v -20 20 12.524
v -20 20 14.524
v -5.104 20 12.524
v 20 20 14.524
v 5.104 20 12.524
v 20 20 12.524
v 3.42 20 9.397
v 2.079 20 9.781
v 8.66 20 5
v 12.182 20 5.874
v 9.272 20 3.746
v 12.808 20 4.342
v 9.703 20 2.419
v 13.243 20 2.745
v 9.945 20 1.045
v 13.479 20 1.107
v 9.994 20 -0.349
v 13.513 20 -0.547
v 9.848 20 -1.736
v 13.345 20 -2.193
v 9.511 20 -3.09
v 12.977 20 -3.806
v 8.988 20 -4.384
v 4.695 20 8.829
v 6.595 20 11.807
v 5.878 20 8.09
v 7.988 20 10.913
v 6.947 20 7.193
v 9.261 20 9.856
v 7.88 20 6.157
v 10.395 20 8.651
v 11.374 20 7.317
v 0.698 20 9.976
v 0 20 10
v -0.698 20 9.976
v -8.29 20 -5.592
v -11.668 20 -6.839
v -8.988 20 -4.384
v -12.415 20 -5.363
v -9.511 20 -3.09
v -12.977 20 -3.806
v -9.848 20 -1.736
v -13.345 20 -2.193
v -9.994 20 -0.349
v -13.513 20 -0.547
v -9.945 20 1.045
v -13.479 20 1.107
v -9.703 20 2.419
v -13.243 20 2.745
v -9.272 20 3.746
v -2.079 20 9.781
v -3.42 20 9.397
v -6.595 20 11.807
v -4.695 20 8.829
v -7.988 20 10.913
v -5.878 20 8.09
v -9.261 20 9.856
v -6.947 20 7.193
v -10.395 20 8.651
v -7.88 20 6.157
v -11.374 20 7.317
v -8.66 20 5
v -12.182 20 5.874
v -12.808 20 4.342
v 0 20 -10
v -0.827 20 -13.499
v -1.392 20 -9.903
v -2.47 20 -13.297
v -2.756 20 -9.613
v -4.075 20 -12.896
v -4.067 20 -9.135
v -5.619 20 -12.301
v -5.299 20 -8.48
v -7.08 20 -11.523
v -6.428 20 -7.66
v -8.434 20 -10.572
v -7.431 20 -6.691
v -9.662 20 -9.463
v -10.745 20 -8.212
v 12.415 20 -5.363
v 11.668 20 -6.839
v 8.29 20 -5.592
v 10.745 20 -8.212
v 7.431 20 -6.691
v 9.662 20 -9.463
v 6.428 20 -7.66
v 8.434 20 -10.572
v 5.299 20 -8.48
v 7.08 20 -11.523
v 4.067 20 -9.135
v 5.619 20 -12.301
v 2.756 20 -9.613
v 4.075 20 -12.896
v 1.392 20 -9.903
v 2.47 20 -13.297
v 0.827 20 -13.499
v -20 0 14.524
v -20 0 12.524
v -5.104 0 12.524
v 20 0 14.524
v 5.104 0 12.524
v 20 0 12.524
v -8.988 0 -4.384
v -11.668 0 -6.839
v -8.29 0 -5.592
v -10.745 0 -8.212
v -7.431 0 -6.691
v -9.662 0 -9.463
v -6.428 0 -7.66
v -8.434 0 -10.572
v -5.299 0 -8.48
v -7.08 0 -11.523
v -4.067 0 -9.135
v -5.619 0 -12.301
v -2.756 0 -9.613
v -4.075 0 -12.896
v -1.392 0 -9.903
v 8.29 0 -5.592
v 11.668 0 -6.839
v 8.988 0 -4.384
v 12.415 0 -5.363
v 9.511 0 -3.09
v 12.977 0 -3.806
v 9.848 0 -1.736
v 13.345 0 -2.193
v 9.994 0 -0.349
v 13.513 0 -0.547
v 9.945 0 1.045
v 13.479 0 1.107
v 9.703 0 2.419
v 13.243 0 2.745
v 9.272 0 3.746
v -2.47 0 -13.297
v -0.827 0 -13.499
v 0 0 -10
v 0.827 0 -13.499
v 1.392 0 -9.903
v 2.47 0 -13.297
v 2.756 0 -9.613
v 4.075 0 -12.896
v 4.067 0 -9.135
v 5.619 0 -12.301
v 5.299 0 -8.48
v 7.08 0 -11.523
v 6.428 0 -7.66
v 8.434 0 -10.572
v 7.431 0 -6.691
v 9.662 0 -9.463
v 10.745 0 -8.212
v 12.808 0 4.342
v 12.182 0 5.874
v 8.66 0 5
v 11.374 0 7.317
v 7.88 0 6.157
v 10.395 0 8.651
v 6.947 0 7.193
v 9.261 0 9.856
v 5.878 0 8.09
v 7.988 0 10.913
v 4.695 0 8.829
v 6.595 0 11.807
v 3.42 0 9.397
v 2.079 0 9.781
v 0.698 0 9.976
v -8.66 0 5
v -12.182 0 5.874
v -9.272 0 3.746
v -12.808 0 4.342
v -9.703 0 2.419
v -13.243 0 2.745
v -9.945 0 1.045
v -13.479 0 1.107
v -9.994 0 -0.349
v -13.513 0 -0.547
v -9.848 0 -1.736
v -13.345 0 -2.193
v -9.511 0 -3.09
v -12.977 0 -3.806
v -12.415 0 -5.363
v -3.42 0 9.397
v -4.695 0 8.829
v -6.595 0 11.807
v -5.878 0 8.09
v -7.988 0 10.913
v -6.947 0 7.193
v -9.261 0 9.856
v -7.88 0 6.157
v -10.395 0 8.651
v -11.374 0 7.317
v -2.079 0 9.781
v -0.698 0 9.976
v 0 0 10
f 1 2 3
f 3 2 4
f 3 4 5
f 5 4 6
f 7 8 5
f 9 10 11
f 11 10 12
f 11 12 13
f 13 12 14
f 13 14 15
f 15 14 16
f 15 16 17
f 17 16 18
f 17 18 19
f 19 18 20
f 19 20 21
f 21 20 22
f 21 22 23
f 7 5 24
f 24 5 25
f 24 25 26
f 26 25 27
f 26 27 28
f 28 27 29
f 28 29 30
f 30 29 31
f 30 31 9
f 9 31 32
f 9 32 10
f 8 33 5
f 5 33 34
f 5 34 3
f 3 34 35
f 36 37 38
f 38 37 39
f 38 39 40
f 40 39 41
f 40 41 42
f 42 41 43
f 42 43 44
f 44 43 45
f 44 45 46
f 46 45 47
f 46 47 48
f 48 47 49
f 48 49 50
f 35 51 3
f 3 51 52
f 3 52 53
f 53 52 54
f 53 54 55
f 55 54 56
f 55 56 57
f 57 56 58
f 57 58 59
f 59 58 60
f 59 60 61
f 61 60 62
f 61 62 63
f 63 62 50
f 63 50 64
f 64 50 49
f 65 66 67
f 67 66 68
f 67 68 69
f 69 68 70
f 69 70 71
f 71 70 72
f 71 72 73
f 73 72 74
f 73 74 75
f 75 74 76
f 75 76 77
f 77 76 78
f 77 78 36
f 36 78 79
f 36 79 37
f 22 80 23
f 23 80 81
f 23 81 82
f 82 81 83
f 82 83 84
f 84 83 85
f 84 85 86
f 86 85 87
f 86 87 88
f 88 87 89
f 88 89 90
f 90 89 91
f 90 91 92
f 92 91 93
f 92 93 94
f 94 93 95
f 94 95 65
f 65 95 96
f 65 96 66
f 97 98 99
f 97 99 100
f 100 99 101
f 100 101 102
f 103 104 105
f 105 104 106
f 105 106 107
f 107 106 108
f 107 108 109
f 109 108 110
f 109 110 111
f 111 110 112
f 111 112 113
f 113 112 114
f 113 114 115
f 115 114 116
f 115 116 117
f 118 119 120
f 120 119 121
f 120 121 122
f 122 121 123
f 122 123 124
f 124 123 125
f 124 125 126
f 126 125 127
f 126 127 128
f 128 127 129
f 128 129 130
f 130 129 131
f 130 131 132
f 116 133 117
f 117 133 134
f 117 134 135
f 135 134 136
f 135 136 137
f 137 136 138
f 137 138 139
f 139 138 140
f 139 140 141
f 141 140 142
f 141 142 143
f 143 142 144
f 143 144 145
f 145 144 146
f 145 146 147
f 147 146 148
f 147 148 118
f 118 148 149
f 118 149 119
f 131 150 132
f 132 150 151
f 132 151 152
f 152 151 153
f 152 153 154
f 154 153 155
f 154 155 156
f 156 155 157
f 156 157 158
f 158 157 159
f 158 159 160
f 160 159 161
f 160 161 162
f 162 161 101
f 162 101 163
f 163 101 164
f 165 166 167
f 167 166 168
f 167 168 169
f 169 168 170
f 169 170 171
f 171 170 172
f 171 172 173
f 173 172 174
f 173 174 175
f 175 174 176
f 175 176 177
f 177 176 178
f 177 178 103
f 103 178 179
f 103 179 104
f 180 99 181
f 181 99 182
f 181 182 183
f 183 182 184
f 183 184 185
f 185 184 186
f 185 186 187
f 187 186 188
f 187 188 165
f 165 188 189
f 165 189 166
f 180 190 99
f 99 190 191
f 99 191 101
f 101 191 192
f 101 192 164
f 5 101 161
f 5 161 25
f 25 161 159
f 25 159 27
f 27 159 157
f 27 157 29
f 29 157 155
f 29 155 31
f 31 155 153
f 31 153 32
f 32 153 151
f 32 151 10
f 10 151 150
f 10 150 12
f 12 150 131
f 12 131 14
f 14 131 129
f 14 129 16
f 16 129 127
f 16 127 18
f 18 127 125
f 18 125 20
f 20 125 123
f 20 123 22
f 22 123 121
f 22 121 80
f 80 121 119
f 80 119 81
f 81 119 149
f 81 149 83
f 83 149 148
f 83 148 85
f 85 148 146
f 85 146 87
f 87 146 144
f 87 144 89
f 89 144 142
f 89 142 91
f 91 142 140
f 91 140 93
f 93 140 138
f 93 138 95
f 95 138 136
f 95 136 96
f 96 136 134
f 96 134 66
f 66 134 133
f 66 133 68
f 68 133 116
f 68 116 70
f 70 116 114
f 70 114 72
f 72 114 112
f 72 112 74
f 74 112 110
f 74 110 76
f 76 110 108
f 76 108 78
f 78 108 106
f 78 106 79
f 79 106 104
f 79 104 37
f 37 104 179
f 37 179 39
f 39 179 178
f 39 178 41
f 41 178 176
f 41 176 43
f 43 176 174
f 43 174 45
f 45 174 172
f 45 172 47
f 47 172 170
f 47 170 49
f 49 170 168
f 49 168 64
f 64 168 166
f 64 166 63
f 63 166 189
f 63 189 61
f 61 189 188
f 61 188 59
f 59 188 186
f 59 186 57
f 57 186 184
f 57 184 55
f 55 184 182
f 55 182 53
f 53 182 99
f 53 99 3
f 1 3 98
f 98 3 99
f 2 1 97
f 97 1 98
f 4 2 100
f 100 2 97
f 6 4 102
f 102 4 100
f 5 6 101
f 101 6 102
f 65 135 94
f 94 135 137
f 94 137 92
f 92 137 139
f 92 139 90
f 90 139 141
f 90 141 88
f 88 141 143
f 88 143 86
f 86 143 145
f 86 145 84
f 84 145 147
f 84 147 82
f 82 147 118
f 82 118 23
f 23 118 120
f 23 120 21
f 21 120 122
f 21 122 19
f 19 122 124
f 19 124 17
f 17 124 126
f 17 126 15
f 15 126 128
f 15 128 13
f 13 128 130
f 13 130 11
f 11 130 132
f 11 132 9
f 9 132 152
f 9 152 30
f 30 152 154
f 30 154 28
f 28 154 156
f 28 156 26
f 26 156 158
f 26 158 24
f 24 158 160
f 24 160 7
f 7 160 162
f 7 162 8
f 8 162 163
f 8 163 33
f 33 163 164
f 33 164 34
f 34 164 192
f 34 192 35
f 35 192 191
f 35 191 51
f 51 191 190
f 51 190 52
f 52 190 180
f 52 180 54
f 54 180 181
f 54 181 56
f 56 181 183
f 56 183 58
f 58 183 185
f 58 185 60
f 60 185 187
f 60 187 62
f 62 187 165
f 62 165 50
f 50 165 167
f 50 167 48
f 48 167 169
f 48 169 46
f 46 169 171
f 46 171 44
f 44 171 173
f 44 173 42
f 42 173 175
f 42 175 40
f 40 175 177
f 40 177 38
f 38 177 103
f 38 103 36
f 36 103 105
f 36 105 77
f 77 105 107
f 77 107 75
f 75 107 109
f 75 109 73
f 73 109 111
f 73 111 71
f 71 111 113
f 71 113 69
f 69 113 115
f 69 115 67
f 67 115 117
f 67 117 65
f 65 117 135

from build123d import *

# Parameters (mm, degrees)
SKETCH1_R           = 10
BOSS_EXTRUDE1_DEPTH = 20


with BuildPart() as part:
    # Sketch1 → Boss-Extrude1 (new body)
    with BuildSketch(Plane(origin=(0, 0, 0), x_dir=(1, 0, 0), z_dir=(0, 1, 0))):
        with BuildLine():
            Line((5.103736684, -12.52406407), (20, -12.52406407))
            Line((20, -12.52406407), (20, -14.52406407))
            Line((20, -14.52406407), (-20, -14.52406407))
            Line((-20, -14.52406407), (-20, -12.52406407))
            Line((-20, -12.52406407), (-5.103736684, -12.52406407))
            ThreePointArc((-5.103736684, -12.52406407), (0, 13.52406407), (5.103736684, -12.52406407))
        make_face()
        with Locations(Location((0, 0, 0), (0, 0, 270))):
            Circle(SKETCH1_R, mode=Mode.SUBTRACT)
    extrude(amount=BOSS_EXTRUDE1_DEPTH)


solid = part.part
